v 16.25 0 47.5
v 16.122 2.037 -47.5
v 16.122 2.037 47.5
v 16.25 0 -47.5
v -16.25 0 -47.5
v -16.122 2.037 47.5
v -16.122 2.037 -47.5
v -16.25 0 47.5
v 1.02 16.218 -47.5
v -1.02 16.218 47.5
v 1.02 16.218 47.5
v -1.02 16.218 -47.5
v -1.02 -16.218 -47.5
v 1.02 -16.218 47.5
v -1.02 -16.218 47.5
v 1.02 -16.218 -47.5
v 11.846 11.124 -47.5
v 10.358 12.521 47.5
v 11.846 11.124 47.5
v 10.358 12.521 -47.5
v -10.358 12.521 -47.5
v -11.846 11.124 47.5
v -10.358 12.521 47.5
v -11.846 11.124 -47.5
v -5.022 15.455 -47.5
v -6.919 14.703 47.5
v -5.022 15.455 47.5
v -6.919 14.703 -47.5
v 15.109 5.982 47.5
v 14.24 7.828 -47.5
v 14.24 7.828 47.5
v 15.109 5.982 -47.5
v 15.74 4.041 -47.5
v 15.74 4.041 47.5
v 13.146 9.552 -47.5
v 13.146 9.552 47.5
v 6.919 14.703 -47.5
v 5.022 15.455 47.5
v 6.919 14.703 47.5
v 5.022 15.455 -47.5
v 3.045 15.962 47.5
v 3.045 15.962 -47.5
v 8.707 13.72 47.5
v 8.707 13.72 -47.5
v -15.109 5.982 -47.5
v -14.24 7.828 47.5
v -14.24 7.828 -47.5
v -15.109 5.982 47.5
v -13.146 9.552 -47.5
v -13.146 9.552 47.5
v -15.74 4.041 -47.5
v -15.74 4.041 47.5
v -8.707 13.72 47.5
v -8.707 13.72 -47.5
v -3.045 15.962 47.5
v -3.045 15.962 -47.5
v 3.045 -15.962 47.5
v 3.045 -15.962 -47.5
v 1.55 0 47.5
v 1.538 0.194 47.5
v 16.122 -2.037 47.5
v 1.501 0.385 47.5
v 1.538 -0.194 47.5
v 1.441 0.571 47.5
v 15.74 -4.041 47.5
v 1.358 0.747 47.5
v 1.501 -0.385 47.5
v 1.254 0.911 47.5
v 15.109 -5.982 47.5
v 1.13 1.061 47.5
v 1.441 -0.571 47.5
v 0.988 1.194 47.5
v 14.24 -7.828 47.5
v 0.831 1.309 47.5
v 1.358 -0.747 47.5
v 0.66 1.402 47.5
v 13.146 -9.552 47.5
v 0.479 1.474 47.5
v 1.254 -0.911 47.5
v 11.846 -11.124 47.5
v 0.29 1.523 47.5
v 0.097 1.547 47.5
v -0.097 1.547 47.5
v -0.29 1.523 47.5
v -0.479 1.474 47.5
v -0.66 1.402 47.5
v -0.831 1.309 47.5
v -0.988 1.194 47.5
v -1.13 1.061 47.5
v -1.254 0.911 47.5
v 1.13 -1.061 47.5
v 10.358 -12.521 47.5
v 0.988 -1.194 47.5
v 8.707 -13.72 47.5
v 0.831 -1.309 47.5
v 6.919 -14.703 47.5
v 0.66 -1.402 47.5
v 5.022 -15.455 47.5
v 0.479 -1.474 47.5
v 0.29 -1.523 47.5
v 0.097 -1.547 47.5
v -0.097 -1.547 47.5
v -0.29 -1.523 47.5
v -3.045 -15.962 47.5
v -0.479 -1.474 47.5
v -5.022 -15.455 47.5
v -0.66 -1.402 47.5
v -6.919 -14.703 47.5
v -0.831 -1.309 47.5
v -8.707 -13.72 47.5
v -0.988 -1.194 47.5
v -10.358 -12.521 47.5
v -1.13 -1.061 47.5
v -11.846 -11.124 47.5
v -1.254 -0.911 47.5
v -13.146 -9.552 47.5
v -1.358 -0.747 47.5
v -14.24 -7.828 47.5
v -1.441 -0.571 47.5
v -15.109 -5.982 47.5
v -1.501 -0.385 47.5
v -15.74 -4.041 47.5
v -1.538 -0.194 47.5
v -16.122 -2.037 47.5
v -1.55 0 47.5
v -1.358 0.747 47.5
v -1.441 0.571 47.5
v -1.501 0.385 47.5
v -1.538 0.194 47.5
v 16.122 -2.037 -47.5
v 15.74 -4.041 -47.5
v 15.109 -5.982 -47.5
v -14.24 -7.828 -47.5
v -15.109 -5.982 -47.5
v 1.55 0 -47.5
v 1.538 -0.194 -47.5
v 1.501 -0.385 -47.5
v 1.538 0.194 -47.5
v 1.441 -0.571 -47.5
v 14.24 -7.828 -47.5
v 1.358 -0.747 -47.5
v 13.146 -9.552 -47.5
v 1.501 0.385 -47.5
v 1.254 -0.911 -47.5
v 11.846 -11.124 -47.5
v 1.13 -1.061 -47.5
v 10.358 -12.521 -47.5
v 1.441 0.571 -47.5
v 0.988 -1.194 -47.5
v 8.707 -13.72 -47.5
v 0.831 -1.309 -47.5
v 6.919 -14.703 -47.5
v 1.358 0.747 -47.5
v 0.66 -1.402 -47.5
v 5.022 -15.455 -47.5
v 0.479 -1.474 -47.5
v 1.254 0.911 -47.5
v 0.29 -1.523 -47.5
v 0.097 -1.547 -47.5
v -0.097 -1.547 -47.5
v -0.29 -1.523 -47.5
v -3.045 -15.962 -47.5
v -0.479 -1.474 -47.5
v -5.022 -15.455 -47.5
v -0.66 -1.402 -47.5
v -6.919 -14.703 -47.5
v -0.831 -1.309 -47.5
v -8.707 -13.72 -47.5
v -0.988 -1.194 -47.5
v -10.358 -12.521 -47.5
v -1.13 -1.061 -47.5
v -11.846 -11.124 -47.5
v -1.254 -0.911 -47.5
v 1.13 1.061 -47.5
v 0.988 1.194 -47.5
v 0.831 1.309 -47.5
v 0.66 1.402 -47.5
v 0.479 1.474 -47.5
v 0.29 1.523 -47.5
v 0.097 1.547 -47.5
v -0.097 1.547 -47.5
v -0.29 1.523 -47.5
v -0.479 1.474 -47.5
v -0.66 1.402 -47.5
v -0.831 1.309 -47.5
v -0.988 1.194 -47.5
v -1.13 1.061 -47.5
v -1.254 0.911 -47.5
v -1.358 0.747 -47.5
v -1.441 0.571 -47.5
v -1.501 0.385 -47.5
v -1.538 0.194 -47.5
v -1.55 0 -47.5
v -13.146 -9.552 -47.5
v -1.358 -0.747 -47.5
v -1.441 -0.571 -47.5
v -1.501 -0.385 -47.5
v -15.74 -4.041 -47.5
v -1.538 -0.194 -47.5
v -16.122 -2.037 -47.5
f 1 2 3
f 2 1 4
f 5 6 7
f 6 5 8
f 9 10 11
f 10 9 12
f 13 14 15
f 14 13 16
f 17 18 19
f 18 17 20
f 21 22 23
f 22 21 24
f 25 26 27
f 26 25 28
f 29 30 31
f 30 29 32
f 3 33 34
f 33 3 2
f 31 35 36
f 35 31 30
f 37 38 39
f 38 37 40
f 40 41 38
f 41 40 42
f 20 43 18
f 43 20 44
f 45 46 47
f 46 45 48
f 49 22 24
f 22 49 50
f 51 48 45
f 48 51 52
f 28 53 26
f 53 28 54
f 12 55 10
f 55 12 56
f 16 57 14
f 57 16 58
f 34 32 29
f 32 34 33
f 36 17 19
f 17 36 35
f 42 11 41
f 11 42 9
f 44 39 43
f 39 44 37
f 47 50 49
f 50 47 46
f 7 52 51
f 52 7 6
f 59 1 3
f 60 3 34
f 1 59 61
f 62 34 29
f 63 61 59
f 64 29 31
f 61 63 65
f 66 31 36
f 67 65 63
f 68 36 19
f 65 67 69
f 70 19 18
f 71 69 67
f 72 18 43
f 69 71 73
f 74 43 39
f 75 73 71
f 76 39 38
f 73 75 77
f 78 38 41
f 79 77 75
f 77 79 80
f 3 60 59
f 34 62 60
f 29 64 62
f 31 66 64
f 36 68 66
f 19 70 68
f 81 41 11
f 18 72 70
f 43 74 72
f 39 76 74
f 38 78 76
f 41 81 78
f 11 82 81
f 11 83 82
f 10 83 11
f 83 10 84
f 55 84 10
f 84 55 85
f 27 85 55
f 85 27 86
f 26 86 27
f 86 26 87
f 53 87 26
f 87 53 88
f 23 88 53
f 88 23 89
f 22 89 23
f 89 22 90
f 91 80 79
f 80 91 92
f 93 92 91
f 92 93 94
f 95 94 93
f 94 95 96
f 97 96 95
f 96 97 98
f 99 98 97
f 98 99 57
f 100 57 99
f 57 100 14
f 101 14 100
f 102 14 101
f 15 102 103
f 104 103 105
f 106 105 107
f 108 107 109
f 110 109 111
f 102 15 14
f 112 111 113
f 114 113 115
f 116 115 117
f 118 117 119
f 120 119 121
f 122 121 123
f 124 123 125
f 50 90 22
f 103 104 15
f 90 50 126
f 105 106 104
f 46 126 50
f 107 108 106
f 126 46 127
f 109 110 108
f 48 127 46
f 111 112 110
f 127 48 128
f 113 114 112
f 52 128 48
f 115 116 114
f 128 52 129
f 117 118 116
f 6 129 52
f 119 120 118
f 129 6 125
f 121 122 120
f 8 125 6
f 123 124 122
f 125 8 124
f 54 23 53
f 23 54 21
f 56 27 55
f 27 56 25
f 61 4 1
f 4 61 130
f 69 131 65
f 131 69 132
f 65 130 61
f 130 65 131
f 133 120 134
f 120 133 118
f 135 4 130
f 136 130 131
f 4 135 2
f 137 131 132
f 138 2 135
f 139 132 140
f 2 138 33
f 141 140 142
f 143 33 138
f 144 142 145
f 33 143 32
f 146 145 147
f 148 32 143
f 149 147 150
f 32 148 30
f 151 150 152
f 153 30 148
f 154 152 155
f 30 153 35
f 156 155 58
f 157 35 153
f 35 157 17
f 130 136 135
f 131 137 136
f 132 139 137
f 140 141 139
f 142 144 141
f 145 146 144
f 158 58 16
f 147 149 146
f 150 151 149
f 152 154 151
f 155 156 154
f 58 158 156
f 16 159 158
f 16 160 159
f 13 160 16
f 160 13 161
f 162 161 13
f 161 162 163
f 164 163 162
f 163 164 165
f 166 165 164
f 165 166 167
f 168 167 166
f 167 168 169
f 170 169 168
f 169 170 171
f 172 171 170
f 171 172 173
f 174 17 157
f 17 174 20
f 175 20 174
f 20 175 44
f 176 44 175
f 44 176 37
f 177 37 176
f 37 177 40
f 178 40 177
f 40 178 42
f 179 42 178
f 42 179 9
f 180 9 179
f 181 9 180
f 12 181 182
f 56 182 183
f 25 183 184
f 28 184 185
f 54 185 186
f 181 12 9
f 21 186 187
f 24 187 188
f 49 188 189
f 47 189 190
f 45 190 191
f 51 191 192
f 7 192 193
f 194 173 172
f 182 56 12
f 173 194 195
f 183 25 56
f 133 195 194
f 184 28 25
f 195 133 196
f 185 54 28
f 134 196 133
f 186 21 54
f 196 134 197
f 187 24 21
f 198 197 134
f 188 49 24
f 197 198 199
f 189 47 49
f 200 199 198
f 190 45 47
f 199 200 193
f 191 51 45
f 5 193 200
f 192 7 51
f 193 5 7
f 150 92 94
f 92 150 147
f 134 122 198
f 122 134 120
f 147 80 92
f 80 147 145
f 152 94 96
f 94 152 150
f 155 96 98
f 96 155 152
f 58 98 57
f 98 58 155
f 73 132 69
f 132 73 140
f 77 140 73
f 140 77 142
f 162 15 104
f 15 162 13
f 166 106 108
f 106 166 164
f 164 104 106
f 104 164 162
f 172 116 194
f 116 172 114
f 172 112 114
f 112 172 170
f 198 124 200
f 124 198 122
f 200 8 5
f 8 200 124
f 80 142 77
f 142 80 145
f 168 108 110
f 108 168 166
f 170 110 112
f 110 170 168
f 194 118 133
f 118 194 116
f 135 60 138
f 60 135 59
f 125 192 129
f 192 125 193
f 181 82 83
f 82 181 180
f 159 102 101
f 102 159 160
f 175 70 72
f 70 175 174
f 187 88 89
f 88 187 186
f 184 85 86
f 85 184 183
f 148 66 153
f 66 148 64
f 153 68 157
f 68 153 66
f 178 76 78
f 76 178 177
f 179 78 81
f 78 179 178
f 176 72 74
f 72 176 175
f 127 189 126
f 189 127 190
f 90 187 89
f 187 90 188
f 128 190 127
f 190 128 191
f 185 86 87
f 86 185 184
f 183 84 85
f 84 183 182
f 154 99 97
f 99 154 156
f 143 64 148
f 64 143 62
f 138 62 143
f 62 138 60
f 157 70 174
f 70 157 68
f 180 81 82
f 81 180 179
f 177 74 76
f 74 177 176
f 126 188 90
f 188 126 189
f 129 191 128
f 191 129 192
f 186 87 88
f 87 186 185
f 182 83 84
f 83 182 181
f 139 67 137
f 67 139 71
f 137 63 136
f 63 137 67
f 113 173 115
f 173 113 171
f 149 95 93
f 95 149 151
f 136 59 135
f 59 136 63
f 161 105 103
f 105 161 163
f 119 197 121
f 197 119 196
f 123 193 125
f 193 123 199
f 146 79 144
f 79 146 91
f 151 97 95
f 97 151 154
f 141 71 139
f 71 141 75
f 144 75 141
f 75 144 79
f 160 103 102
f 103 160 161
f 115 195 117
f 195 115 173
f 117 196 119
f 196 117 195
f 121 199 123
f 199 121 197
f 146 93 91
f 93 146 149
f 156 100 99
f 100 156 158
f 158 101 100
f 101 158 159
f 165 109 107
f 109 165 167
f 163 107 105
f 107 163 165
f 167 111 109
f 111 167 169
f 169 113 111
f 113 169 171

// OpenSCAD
$fn = 50;


difference() {
	union() {
		translate(v = [0, 0, -47.5000000000]) {
			cylinder(h = 95, r = 16.2500000000);
		}
	}
	union() {
		translate(v = [0, 0, -100.0000000000]) {
			cylinder(h = 200, r = 1.5500000000);
		}
	}
}
